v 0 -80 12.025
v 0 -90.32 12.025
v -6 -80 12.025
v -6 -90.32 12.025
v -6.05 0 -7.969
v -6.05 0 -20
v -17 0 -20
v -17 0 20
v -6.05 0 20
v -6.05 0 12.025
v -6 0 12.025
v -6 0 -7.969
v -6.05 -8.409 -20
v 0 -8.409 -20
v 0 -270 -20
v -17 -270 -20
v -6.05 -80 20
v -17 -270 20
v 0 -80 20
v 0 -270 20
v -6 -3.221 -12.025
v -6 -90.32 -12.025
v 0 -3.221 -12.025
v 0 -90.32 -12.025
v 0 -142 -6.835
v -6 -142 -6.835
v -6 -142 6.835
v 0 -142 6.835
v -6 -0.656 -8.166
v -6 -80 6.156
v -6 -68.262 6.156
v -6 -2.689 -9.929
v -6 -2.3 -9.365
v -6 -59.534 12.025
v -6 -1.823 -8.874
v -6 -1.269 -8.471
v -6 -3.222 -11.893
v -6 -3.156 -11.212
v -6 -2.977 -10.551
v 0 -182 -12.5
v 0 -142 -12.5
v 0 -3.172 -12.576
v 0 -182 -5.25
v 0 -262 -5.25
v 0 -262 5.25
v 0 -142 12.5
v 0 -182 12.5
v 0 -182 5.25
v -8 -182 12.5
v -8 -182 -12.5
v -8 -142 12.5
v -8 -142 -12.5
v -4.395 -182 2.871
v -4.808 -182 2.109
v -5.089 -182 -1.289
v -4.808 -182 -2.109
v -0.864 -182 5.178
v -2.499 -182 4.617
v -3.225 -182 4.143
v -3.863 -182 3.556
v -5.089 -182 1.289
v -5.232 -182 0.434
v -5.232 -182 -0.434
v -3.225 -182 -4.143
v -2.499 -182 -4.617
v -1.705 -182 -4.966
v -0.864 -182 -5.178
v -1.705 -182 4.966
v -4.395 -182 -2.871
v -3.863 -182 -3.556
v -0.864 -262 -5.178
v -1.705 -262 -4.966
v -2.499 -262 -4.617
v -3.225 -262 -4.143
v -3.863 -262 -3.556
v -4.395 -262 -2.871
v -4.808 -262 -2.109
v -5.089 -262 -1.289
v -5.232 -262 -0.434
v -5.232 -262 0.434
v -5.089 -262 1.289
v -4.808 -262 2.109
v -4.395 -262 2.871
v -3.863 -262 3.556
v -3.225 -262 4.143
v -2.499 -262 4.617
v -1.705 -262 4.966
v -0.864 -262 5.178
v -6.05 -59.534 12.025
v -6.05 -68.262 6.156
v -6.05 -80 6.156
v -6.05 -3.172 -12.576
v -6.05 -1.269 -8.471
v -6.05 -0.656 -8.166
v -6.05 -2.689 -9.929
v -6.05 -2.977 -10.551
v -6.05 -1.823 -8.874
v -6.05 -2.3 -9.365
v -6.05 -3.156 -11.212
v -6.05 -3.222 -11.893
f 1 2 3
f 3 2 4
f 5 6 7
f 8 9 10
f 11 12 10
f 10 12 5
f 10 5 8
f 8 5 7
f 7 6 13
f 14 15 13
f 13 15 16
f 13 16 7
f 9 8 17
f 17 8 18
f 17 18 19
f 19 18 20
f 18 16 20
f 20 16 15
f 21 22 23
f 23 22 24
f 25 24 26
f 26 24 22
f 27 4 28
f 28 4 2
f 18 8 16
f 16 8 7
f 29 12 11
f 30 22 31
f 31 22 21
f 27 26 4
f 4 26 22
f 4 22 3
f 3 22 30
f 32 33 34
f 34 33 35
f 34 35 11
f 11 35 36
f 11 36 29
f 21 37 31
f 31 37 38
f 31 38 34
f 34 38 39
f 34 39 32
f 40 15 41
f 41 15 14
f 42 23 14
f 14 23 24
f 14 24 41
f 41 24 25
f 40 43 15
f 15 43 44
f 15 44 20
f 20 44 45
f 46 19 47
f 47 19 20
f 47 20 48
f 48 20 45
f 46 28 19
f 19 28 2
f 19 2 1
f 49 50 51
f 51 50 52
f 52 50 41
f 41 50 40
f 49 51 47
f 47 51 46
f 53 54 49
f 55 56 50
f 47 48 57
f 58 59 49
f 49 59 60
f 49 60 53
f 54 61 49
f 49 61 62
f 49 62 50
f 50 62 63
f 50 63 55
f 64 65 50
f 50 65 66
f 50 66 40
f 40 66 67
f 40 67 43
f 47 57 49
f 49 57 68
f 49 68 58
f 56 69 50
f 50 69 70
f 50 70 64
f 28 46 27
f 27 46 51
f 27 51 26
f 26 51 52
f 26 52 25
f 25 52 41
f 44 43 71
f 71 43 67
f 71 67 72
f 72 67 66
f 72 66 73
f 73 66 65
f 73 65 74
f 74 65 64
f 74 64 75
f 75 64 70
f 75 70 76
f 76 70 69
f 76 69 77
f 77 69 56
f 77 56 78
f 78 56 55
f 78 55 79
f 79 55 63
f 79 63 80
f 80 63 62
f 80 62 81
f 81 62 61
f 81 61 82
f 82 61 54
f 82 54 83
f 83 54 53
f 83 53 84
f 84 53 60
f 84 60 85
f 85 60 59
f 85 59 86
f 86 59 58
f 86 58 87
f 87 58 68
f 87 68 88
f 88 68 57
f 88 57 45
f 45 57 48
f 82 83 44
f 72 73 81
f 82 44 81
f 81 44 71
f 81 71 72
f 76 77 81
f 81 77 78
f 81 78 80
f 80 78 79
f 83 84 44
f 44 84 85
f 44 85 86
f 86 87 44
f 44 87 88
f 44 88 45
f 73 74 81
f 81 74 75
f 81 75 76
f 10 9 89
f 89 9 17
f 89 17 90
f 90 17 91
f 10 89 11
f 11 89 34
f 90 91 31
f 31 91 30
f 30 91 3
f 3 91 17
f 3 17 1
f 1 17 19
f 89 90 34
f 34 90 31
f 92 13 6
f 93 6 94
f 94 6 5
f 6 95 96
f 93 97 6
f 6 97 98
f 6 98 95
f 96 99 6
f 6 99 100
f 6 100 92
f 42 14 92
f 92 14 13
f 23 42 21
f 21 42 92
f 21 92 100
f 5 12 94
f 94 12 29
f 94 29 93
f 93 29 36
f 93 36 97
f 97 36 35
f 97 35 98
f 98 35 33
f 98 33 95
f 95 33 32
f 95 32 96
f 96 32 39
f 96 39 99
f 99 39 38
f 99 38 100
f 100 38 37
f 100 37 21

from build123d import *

# Parameters (mm, degrees)
SKETCH_1_W          = 40
SKETCH_1_H          = 270
EXTRUDE_1_DEPTH     = 17
CUT_EXTRUDE_1_DEPTH = 6
SKETCH_3_W          = 152.274191223
SKETCH_3_H          = 354.870754653
CUT_EXTRUDE_2_DEPTH = 272.272925298
SKETCH_5_W          = 16
SKETCH_5_H          = 25
CUT_EXTRUDE_3_DEPTH = 40
SKETCH_6_R          = 5.25
CUT_EXTRUDE_4_DEPTH = 120
CUT_EXTRUDE_5_DEPTH = 6.05


with BuildPart() as part:
    # 스케치1 → 보스-돌출1 (new, symmetric)
    with BuildSketch(Plane(origin=(0, 0, 0), x_dir=(0, 0, -1), z_dir=(1, 0, 0))):
        with Locations((0, -135)):
            Rectangle(SKETCH_1_W, SKETCH_1_H)
    extrude(amount=EXTRUDE_1_DEPTH, both=True)

    # 스케치2 → 컷-돌출1 (cut, symmetric)
    with BuildSketch(Plane(origin=(0, 0, 0), x_dir=(0, 0, -1), z_dir=(1, 0, 0))):
        Polygon((-12.025, 0), (-12.025, -90.319763504), (-6, -150.319763504), (6, -150.319763504), (12.025, -90.319763504), (12.025, 0), align=None)
    extrude(amount=CUT_EXTRUDE_1_DEPTH, both=True, mode=Mode.SUBTRACT)

    # 스케치3 → 컷-돌출2 (cut, through all)
    with BuildSketch(Plane(origin=(0, 0, 0), x_dir=(0, 0, -1), z_dir=(1, 0, 0))):
        with Locations((9.80305952, -151.338432535)):
            Rectangle(SKETCH_3_W, SKETCH_3_H)
    extrude(amount=CUT_EXTRUDE_2_DEPTH, mode=Mode.SUBTRACT)

    # 스케치5 → 컷-돌출3 (cut)
    with BuildSketch(Plane(origin=(0, -142, 0), x_dir=(1, 0, 0), z_dir=(0, 1, 0))):
        Rectangle(SKETCH_5_W, SKETCH_5_H)
    extrude(amount=-CUT_EXTRUDE_3_DEPTH, mode=Mode.SUBTRACT)

    # 스케치6 → 컷-돌출4 (cut)
    with BuildSketch(Plane(origin=(0, -142, 0), x_dir=(1, 0, 0), z_dir=(0, 1, 0))):
        Circle(SKETCH_6_R)
    extrude(amount=-CUT_EXTRUDE_4_DEPTH, mode=Mode.SUBTRACT)

    # 스케치7 → 컷-돌출5 (cut, symmetric)
    with BuildSketch(Plane(origin=(0, 0, 0), x_dir=(0, 0, -1), z_dir=(1, 0, 0))):
        Polygon((-6.155859274, -80), (-36.714111957, -80), (-36.714111957, 2.042704012), (-12.025, 2.042704012), (-12.025, -59.533635609), (-6.155859274, -68.262005046), align=None)
        with BuildLine():
            Line((6.890709855, 1.954718535), (7.897215171, 1.181933858))
            ThreePointArc((7.897215171, 1.181933858), (9.176015746, -2.135086772), (12.576405499, -3.172056537))
            Line((12.576405499, -3.172056537), (24.789660635, -11.787916198))
            Line((24.789660635, -11.787916198), (24.789660635, 1.954718535))
            Line((24.789660635, 1.954718535), (6.890709855, 1.954718535))
        make_face()
    extrude(amount=CUT_EXTRUDE_5_DEPTH, both=True, mode=Mode.SUBTRACT)


solid = part.part
